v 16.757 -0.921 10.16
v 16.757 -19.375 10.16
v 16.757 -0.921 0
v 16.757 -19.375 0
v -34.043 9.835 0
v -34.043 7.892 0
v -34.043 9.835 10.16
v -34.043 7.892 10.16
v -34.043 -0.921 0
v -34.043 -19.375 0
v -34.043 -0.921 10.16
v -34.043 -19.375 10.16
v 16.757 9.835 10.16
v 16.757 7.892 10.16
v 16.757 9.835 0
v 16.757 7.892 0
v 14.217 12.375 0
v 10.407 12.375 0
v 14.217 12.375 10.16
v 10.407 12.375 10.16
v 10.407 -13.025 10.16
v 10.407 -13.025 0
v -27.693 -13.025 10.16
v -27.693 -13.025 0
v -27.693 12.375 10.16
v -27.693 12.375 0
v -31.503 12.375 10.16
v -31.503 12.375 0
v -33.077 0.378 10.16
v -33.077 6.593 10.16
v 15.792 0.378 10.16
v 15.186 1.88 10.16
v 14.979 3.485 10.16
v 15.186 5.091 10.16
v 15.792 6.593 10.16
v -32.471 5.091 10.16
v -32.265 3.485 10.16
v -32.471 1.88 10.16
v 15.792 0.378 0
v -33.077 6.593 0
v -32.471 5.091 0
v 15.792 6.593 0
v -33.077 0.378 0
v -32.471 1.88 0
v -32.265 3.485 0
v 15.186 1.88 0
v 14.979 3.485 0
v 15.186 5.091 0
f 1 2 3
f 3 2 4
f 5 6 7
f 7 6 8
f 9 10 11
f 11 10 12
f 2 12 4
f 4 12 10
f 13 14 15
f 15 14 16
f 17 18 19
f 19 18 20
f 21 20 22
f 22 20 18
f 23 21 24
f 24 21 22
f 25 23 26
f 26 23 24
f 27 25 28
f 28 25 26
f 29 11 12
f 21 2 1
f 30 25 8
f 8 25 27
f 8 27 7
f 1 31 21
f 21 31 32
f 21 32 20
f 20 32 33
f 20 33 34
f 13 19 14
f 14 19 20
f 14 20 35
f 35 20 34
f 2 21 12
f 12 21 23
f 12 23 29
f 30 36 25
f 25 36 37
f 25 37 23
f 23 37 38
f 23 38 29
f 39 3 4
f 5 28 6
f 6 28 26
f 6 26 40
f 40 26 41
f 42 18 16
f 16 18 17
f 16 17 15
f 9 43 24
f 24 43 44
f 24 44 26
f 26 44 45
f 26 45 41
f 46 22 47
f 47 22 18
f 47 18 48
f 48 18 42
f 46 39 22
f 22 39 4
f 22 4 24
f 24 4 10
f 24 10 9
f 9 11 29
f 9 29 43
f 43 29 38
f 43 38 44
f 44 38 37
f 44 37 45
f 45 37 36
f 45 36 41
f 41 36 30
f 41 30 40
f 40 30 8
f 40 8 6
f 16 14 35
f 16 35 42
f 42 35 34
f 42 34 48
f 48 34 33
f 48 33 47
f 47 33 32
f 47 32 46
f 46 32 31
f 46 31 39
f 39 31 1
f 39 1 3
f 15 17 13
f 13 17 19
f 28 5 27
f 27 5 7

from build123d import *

# Parameters (mm, degrees)
BOSS_EXTRUDE1_DEPTH = 10.16
SKETCH2_R           = 6.35
CUT_EXTRUDE1_DEPTH  = 25.4
CHAMFER1_SIZE       = 2.54
CHAMFER2_SIZE       = 2.54


with BuildPart() as part:
    # Sketch1 → Boss-Extrude1 (new body)
    with BuildSketch(Plane.XY):
        Polygon((-34.042504308, -19.37463512), (16.757495692, -19.37463512), (16.757495692, 12.37536488), (10.407495692, 12.37536488), (10.407495692, -13.02463512), (-27.692504308, -13.02463512), (-27.692504308, 12.37536488), (-34.042504308, 12.37536488), align=None)
    extrude(amount=BOSS_EXTRUDE1_DEPTH)

    # Sketch2 → Cut-Extrude1 (cut)
    with BuildSketch(Plane.XY.offset(10.16)):
        with Locations((-38.614504308, 3.48536488)):
            Circle(SKETCH2_R)
        with Locations((21.329495692, 3.48536488)):
            Circle(SKETCH2_R)
    extrude(amount=-CUT_EXTRUDE1_DEPTH, mode=Mode.SUBTRACT)

    # Chamfer1
    chamfer1_edges = [part.edges().sort_by_distance(p)[0] for p in [
        (16.757495692, 12.37536488, 5.08),
    ]]
    chamfer(chamfer1_edges, length=CHAMFER1_SIZE)

    # Chamfer2
    chamfer2_edges = [part.edges().sort_by_distance(p)[0] for p in [
        (-34.042504308, 12.37536488, 5.08),
    ]]
    chamfer(chamfer2_edges, length=CHAMFER2_SIZE)


solid = part.part
